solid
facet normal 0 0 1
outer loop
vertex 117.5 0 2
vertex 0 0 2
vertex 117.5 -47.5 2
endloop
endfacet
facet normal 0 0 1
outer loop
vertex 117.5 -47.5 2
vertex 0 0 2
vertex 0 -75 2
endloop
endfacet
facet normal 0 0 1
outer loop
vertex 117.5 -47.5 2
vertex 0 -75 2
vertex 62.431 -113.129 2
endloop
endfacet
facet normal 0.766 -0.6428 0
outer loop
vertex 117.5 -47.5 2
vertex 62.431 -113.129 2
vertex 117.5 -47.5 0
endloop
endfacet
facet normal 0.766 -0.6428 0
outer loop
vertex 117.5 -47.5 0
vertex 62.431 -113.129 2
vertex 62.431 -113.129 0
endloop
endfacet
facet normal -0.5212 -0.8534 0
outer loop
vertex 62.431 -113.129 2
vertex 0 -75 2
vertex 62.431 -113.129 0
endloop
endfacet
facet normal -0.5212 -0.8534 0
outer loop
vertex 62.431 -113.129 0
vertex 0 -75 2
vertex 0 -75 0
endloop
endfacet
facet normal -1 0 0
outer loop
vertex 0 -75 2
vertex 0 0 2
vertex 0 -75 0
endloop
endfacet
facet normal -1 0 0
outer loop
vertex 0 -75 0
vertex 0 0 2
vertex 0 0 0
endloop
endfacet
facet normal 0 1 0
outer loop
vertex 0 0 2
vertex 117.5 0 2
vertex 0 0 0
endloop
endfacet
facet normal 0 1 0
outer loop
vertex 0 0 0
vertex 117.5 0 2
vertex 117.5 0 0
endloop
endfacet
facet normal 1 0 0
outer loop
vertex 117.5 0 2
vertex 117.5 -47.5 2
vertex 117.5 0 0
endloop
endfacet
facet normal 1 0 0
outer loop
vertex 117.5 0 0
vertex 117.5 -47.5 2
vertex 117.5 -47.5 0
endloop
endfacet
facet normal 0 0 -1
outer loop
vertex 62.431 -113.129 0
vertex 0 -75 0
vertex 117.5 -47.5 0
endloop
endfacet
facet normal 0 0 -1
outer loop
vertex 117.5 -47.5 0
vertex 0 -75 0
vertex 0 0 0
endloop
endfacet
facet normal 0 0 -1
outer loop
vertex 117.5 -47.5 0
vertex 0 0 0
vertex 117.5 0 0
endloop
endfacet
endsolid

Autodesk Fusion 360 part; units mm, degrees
sketch "Sketch1" plane through (0, 0, 0) normal (0, 0, 1) x (1, 0, 0) in component "Case "
  line L0 (0, 0) -> (117.5, 0)
  line L1 (117.5, 0) -> (117.5, -47.5)
  line L2 (117.5, -47.5) -> (62.4309, -113.1288)
  line L3 (0, 0) -> (0, -75)
  line L4 (0, -75) -> (62.4309, -113.1288)
  line L5 (0, -66.2119) -> (67.3065, -107.3183)
  line L6 (55.9577, -109.1753) -> (117.5, -35.8321)
  line L7 (0, -7.5) -> (117.5, -7.5)
  line L8 (110, 0) -> (110, -56.4382)
  line L9 (117.5, -47.5) -> (0, -47.5)
  dimension "d3" = 140
  dimension "d11" = 7.5
  dimension "d12" = 7.5
  dimension "d13" = 7.5
  dimension "d14" = 7.5
  dimension "d15" = 110
  dimension "d16" = 47.5
  dimension "d17" = 18.7119
  dimension "d18" = 75
extrude "Extrude1" add sketch "Sketch1" along normal blind 5
extrude "Extrude2" cut 1 faces at (39.1667, -40.8333, 5) along direction (0, 0, -1) blind 3
extrude "Extrude1'" [suppressed] in component "Case "
extrude "Extrude3" [suppressed] in component "Case "
sketch "Sketch2" plane through (0, 0, 0) normal (0, 0, 1) x (1, 0, 0) in component "Case "
  line L0 (0, 31.2783) -> (117.5, 31.2783)
  line L1 (117.5, 31.2783) -> (117.5, 78.7783)
  line L2 (117.5, 78.7783) -> (62.4311, 144.4069)
  line L3 (0, 31.2783) -> (0, 106.2783)
  line L4 (0, 106.2783) -> (62.4311, 144.4069)
  dimension "d23" = 117.5
  dimension "d24" = 47.5
  dimension "d25" = 85.672
  dimension "d29" = 75
  dimension "d31" = 140
  dimension "d32" = 73.1535
extrude "Extrude4" [suppressed] in component "Case "
extrude "Extrude5" [suppressed] in component "Case "
extrude "Extrude2'" [suppressed] in component "Case "
component "Case " placed x (1, 0, 0) y (0, 1, 0) z (0, 0, 1) at (0, 0, 0)
